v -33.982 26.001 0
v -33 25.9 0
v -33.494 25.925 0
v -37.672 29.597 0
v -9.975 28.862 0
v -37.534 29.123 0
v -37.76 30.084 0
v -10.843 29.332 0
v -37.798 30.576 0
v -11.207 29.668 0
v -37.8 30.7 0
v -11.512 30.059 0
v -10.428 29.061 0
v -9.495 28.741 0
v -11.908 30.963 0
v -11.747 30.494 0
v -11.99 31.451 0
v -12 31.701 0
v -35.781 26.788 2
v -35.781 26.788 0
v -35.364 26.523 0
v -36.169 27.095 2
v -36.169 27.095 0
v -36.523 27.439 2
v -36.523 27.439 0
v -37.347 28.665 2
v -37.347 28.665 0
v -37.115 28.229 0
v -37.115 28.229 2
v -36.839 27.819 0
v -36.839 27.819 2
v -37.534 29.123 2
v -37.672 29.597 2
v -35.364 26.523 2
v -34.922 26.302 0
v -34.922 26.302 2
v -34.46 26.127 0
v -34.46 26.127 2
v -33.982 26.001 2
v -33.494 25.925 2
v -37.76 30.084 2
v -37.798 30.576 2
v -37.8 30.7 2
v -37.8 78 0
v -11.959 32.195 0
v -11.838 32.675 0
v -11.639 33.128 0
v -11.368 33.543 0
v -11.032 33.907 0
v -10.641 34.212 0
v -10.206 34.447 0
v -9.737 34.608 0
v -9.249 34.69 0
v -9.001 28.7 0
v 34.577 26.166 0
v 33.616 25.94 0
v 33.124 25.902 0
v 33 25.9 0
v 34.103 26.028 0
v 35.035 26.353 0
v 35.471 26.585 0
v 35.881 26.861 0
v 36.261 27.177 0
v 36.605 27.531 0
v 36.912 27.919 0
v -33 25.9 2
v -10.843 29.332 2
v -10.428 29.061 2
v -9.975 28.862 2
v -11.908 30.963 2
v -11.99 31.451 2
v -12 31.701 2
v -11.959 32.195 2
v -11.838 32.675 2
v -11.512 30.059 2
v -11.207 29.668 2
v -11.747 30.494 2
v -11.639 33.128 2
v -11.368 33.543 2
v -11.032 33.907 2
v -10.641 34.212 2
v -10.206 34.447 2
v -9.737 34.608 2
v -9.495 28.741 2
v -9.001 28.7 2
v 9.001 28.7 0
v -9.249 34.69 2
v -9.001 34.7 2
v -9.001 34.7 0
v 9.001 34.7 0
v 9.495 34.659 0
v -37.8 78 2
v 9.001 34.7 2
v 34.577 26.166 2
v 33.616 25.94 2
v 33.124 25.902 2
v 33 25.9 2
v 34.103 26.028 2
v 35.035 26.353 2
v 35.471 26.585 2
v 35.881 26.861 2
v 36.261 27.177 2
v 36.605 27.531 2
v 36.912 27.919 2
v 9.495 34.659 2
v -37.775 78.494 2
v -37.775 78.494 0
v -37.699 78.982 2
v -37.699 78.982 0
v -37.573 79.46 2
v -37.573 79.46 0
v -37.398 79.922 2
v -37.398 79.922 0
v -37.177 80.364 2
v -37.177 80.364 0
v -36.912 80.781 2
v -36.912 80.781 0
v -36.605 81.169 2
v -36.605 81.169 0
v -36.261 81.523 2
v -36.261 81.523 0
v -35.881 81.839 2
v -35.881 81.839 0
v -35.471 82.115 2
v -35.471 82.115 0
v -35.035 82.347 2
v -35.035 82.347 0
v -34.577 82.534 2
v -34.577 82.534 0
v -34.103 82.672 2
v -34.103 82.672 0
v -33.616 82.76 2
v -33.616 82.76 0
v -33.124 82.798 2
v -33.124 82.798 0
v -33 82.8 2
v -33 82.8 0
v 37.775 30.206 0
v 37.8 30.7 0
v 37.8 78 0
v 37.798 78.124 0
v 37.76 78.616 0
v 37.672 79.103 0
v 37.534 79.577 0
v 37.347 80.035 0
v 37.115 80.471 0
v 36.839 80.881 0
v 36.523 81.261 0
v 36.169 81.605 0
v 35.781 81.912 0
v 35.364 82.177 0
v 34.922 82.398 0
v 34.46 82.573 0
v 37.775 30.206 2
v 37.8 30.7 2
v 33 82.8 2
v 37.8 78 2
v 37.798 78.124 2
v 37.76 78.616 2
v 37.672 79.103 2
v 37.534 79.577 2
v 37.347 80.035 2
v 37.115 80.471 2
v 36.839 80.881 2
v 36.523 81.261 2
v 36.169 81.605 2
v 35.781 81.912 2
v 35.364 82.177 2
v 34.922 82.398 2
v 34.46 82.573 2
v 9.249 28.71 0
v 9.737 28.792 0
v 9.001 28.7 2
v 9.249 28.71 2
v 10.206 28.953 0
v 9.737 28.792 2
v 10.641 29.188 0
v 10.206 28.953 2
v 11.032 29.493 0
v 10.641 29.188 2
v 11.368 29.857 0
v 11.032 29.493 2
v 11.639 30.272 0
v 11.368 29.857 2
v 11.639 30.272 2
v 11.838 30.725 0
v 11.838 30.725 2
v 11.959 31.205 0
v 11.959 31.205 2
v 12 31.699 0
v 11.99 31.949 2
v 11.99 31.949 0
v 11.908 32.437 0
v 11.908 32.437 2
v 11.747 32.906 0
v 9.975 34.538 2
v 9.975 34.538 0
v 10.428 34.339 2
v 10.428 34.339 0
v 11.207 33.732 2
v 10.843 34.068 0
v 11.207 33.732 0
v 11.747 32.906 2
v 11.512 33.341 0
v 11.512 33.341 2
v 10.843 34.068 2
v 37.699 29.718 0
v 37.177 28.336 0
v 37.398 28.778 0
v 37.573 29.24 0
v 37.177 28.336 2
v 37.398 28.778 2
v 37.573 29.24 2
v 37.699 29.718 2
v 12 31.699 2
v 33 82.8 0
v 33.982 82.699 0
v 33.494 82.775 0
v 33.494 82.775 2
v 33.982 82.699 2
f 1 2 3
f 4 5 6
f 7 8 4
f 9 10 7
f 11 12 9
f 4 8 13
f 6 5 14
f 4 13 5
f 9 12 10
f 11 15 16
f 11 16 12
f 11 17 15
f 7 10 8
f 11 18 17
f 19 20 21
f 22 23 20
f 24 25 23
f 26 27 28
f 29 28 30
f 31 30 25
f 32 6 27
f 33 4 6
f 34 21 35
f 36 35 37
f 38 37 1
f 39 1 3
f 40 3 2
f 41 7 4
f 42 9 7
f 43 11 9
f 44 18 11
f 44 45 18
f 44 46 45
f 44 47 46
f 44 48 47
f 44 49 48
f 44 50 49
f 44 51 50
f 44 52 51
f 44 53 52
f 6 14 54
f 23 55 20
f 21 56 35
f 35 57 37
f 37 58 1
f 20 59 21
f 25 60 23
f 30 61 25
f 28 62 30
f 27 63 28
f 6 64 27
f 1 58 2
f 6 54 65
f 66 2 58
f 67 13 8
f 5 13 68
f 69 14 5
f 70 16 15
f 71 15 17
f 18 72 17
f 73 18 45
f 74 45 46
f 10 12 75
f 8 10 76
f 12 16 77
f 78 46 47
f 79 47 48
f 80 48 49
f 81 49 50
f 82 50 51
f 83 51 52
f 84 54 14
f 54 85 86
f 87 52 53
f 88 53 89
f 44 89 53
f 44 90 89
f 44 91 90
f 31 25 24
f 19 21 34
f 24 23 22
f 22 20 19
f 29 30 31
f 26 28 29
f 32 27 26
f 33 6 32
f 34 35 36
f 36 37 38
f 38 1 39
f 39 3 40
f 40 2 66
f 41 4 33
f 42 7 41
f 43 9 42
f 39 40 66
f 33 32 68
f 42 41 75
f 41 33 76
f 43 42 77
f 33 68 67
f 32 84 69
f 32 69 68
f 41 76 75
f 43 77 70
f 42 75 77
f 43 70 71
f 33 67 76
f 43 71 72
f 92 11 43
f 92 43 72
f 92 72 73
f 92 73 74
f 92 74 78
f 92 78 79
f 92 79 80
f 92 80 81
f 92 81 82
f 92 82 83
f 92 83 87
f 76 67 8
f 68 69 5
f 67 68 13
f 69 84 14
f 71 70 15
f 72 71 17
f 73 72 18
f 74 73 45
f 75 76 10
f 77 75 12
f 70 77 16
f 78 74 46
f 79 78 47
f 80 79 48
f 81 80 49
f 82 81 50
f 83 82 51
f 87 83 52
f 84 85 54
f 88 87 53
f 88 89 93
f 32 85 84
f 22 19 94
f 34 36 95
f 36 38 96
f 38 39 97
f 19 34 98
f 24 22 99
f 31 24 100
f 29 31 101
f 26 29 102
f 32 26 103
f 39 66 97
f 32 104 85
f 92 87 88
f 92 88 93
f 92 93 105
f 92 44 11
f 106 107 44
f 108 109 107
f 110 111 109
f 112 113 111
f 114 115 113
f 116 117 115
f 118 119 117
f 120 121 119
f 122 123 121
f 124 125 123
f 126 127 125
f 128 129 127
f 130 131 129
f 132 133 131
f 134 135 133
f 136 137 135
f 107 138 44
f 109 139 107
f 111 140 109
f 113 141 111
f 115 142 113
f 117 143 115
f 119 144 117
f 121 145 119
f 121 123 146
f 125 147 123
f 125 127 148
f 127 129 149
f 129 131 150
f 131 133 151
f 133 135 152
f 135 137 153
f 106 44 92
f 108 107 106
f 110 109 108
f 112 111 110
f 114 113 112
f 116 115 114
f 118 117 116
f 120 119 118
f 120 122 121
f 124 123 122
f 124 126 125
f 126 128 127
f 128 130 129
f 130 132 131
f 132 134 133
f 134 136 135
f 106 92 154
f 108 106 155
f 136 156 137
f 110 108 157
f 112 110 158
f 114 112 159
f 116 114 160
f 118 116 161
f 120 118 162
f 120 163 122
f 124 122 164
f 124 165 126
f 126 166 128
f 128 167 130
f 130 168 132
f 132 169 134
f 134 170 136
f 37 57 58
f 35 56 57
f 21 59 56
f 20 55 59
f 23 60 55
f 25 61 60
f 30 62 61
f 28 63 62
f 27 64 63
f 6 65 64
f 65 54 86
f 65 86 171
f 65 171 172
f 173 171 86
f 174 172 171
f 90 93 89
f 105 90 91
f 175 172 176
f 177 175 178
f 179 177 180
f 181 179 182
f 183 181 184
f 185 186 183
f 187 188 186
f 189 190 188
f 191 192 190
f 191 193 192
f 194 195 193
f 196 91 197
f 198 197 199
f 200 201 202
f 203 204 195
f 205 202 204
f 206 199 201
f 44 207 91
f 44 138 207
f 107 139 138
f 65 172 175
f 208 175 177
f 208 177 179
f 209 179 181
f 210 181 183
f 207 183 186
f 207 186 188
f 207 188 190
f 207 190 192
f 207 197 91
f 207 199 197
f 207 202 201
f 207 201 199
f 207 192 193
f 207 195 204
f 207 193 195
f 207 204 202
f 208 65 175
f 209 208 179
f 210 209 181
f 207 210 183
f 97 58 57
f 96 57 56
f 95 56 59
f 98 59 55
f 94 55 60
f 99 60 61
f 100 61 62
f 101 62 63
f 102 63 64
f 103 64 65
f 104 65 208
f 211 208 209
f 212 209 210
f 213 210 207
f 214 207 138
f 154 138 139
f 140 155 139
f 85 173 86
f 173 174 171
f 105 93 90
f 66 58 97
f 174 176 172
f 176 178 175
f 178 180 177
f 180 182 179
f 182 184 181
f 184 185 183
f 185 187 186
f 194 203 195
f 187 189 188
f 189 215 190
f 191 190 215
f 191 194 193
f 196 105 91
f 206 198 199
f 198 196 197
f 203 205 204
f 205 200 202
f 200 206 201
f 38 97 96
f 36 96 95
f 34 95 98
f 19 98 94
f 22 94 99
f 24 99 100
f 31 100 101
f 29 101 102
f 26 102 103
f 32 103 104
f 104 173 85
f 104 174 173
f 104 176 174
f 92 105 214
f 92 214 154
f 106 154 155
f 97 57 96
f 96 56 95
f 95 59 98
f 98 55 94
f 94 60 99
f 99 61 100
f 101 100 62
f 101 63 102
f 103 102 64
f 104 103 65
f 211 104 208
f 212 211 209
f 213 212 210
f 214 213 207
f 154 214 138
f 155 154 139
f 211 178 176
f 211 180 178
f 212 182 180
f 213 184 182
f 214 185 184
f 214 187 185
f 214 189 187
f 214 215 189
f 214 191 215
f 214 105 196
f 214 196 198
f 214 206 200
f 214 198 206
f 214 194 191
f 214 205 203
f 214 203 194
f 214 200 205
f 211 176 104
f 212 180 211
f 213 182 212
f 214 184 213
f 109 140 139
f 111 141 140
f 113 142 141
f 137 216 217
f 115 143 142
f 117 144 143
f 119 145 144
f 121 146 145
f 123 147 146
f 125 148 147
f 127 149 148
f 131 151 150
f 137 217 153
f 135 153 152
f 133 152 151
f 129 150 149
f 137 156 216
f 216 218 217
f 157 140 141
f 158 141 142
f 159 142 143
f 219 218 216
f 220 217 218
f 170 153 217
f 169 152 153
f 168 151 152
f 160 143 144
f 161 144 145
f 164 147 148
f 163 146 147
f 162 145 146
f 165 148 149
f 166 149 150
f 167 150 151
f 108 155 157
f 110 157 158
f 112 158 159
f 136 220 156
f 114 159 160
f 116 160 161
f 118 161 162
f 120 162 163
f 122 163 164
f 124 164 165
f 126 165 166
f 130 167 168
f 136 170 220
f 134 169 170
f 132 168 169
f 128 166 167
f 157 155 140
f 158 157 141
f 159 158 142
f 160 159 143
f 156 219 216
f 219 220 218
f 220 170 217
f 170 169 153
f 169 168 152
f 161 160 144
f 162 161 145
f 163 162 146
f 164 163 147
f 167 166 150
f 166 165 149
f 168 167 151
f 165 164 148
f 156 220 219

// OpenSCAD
// file: lib/lib.scad
// Shared helpers. Include AFTER params.scad (needs TOL, M3_* etc.).
$fa = 4; $fs = 0.5;

module rrect(size, r) {            // 2D rounded rectangle, centred
    r2 = min(r, min(size[0], size[1]) / 2 - 0.001);
    offset(r = r2) square([size[0] - 2 * r2, size[1] - 2 * r2], center = true);
}
module rbox(size, r, center_xy = true) {   // box with rounded vertical edges
    translate(center_xy ? [0, 0, 0] : [size[0] / 2, size[1] / 2, 0])
        linear_extrude(size[2]) rrect([size[0], size[1]], r);
}
module rbox_at(x0, x1, y0, y1, z0, z1, r = 0.01) {
    translate([(x0 + x1) / 2, (y0 + y1) / 2, z0]) rbox([x1 - x0, y1 - y0, z1 - z0], r);
}
module box_at(x0, x1, y0, y1, z0, z1) { translate([x0, y0, z0]) cube([x1 - x0, y1 - y0, z1 - z0]); }

module ring(ro, ri, h) { difference() { cylinder(r = ro, h = h); translate([0, 0, -1]) cylinder(r = ri, h = h + 2); } }
module ring_sector(ro, ri, h, a0, a1) {
    intersection() {
        ring(ro, ri, h);
        linear_extrude(h) polygon(concat([[0, 0]], [for (a = [a0 : (a1 - a0) / 24 : a1]) 2 * ro * [cos(a), sin(a)]]));
    }
}
// teardrop hole along an axis lying horizontal (axis = Y after rotation), printable w/o support
module teardrop2d(d) { union() { circle(d = d); rotate(45) square(d / 2); } }
// vertical heat-set insert hole, opening at z=0 going +z (depth l)
module insert_hole(l = M3_INSERT_L) { translate([0, 0, -EPS]) cylinder(d = M3_INSERT_D, h = l + EPS); }
module m3_clear(l) { translate([0, 0, -EPS]) cylinder(d = M3_CLEAR, h = l + 2 * EPS); }
module m3_csk(l) {  // countersunk clearance from z=0 upward, head at z=0 side
    translate([0, 0, -EPS]) { cylinder(d = M3_CLEAR, h = l + 2 * EPS); cylinder(d1 = 6.4, d2 = M3_CLEAR, h = 1.7); }
}
module card2d() { rrect([CARD_L, CARD_W], CARD_R); }
module card_at(cy, z) { translate([0, cy, z]) linear_extrude(CARD_T) card2d(); }

// ---- gears ----
function _inv(a) = tan(a) - a * PI_ / 180;           // involute function, a in deg
function _invpt(rb, r, ang0, s) = let(al = acos(rb / r), th = ang0 - s * (_inv(al) * 180 / PI_)) [r * cos(th), r * sin(th)];
module involute_gear2d(m, z, pa = 20, clearance = 0.05) {
    rp = m * z / 2; rb = rp * cos(pa); ra = rp + m - clearance; rf = rp - 1.25 * m;
    half = 90 / z + _inv(pa) * 180 / PI_;            // tooth half-angle at base (deg)
    n = 8;
    rs = [for (i = [0 : n]) max(rb, rf) + (ra - max(rb, rf)) * i / n];
    union() {
        circle(r = rf, $fn = z * 4);
        for (k = [0 : z - 1]) rotate(k * 360 / z) polygon(concat(
            [[rf * cos(-half), rf * sin(-half)]],
            [for (r = rs) let(p = _invpt(rb, r, half, 1)) [p[0], -p[1]]],
            [for (i = [n : -1 : 0]) _invpt(rb, rs[i], half, 1)],
            [[rf * cos(half), rf * sin(half)]]));
    }
}
// straight gear rack (2D in XY: teeth along +x, pointing -y, pitch line at y=0)
module gear_rack2d(m, len, back = 3) {
    p = PI_ * m; ad = m; de = 1.25 * m; t = tan(20);
    n = ceil(len / p) + 1;
    intersection() {
        union() {
            translate([0, de]) square([len, back]);
            for (i = [0 : n]) if (i * p - p / 4 - (p / 4 + de * t) >= 0 && i * p + de * t <= len) translate([i * p - p / 4, 0]) polygon([
                [-(p / 4 + de * t), de + 0.01], [p / 4 + de * t + 0.01, de + 0.01],
                [p / 4 - ad * t, -ad], [-(p / 4 - ad * t), -ad] ]);
        }
        translate([0, -ad - 1]) square([len, ad + de + back + 2]);
    }
}
// GT2 belt-tooth profile ring (teeth outward), 2D
module gt2_ring2d(n, r_land, ri) {
    union() {
        difference() { circle(r = r_land + 0.01, $fn = n * 2); circle(r = ri, $fn = n * 2); }
        for (k = [0 : n - 1]) rotate(k * 360 / n)
            translate([r_land, 0]) hull() { translate([-0.2, 0]) square([0.2, 1.0], center = true); translate([0.25, 0]) circle(r = 0.5, $fn = 12); }
    }
}
// main file
// Hopper loading lid, drops into the top cap flush. Print: flat, top face on bed.
include <params.scad>
include <lib/lib.scad>
LID_OPEN = [76, HOP_YI0 - HOP_YI1 - 7];  LID_YC = (HOP_YI0 + HOP_YI1) / 2;
module hopper_lid() difference() {
    translate([0, LID_YC, CAP_IN_Z]) linear_extrude(CAP_T) rrect(LID_OPEN - [0.4, 0.4], 4.8);
    translate([0, LID_YC + LID_OPEN[1] / 2 - 6, CAP_IN_Z - 1]) linear_extrude(5) rrect([24, 6], 3);   // finger slot (through)
}
module hopper_lid_print() translate([0, 0, CAP_TOP_Z]) rotate([180, 0, 0]) hopper_lid();
hopper_lid_print();
